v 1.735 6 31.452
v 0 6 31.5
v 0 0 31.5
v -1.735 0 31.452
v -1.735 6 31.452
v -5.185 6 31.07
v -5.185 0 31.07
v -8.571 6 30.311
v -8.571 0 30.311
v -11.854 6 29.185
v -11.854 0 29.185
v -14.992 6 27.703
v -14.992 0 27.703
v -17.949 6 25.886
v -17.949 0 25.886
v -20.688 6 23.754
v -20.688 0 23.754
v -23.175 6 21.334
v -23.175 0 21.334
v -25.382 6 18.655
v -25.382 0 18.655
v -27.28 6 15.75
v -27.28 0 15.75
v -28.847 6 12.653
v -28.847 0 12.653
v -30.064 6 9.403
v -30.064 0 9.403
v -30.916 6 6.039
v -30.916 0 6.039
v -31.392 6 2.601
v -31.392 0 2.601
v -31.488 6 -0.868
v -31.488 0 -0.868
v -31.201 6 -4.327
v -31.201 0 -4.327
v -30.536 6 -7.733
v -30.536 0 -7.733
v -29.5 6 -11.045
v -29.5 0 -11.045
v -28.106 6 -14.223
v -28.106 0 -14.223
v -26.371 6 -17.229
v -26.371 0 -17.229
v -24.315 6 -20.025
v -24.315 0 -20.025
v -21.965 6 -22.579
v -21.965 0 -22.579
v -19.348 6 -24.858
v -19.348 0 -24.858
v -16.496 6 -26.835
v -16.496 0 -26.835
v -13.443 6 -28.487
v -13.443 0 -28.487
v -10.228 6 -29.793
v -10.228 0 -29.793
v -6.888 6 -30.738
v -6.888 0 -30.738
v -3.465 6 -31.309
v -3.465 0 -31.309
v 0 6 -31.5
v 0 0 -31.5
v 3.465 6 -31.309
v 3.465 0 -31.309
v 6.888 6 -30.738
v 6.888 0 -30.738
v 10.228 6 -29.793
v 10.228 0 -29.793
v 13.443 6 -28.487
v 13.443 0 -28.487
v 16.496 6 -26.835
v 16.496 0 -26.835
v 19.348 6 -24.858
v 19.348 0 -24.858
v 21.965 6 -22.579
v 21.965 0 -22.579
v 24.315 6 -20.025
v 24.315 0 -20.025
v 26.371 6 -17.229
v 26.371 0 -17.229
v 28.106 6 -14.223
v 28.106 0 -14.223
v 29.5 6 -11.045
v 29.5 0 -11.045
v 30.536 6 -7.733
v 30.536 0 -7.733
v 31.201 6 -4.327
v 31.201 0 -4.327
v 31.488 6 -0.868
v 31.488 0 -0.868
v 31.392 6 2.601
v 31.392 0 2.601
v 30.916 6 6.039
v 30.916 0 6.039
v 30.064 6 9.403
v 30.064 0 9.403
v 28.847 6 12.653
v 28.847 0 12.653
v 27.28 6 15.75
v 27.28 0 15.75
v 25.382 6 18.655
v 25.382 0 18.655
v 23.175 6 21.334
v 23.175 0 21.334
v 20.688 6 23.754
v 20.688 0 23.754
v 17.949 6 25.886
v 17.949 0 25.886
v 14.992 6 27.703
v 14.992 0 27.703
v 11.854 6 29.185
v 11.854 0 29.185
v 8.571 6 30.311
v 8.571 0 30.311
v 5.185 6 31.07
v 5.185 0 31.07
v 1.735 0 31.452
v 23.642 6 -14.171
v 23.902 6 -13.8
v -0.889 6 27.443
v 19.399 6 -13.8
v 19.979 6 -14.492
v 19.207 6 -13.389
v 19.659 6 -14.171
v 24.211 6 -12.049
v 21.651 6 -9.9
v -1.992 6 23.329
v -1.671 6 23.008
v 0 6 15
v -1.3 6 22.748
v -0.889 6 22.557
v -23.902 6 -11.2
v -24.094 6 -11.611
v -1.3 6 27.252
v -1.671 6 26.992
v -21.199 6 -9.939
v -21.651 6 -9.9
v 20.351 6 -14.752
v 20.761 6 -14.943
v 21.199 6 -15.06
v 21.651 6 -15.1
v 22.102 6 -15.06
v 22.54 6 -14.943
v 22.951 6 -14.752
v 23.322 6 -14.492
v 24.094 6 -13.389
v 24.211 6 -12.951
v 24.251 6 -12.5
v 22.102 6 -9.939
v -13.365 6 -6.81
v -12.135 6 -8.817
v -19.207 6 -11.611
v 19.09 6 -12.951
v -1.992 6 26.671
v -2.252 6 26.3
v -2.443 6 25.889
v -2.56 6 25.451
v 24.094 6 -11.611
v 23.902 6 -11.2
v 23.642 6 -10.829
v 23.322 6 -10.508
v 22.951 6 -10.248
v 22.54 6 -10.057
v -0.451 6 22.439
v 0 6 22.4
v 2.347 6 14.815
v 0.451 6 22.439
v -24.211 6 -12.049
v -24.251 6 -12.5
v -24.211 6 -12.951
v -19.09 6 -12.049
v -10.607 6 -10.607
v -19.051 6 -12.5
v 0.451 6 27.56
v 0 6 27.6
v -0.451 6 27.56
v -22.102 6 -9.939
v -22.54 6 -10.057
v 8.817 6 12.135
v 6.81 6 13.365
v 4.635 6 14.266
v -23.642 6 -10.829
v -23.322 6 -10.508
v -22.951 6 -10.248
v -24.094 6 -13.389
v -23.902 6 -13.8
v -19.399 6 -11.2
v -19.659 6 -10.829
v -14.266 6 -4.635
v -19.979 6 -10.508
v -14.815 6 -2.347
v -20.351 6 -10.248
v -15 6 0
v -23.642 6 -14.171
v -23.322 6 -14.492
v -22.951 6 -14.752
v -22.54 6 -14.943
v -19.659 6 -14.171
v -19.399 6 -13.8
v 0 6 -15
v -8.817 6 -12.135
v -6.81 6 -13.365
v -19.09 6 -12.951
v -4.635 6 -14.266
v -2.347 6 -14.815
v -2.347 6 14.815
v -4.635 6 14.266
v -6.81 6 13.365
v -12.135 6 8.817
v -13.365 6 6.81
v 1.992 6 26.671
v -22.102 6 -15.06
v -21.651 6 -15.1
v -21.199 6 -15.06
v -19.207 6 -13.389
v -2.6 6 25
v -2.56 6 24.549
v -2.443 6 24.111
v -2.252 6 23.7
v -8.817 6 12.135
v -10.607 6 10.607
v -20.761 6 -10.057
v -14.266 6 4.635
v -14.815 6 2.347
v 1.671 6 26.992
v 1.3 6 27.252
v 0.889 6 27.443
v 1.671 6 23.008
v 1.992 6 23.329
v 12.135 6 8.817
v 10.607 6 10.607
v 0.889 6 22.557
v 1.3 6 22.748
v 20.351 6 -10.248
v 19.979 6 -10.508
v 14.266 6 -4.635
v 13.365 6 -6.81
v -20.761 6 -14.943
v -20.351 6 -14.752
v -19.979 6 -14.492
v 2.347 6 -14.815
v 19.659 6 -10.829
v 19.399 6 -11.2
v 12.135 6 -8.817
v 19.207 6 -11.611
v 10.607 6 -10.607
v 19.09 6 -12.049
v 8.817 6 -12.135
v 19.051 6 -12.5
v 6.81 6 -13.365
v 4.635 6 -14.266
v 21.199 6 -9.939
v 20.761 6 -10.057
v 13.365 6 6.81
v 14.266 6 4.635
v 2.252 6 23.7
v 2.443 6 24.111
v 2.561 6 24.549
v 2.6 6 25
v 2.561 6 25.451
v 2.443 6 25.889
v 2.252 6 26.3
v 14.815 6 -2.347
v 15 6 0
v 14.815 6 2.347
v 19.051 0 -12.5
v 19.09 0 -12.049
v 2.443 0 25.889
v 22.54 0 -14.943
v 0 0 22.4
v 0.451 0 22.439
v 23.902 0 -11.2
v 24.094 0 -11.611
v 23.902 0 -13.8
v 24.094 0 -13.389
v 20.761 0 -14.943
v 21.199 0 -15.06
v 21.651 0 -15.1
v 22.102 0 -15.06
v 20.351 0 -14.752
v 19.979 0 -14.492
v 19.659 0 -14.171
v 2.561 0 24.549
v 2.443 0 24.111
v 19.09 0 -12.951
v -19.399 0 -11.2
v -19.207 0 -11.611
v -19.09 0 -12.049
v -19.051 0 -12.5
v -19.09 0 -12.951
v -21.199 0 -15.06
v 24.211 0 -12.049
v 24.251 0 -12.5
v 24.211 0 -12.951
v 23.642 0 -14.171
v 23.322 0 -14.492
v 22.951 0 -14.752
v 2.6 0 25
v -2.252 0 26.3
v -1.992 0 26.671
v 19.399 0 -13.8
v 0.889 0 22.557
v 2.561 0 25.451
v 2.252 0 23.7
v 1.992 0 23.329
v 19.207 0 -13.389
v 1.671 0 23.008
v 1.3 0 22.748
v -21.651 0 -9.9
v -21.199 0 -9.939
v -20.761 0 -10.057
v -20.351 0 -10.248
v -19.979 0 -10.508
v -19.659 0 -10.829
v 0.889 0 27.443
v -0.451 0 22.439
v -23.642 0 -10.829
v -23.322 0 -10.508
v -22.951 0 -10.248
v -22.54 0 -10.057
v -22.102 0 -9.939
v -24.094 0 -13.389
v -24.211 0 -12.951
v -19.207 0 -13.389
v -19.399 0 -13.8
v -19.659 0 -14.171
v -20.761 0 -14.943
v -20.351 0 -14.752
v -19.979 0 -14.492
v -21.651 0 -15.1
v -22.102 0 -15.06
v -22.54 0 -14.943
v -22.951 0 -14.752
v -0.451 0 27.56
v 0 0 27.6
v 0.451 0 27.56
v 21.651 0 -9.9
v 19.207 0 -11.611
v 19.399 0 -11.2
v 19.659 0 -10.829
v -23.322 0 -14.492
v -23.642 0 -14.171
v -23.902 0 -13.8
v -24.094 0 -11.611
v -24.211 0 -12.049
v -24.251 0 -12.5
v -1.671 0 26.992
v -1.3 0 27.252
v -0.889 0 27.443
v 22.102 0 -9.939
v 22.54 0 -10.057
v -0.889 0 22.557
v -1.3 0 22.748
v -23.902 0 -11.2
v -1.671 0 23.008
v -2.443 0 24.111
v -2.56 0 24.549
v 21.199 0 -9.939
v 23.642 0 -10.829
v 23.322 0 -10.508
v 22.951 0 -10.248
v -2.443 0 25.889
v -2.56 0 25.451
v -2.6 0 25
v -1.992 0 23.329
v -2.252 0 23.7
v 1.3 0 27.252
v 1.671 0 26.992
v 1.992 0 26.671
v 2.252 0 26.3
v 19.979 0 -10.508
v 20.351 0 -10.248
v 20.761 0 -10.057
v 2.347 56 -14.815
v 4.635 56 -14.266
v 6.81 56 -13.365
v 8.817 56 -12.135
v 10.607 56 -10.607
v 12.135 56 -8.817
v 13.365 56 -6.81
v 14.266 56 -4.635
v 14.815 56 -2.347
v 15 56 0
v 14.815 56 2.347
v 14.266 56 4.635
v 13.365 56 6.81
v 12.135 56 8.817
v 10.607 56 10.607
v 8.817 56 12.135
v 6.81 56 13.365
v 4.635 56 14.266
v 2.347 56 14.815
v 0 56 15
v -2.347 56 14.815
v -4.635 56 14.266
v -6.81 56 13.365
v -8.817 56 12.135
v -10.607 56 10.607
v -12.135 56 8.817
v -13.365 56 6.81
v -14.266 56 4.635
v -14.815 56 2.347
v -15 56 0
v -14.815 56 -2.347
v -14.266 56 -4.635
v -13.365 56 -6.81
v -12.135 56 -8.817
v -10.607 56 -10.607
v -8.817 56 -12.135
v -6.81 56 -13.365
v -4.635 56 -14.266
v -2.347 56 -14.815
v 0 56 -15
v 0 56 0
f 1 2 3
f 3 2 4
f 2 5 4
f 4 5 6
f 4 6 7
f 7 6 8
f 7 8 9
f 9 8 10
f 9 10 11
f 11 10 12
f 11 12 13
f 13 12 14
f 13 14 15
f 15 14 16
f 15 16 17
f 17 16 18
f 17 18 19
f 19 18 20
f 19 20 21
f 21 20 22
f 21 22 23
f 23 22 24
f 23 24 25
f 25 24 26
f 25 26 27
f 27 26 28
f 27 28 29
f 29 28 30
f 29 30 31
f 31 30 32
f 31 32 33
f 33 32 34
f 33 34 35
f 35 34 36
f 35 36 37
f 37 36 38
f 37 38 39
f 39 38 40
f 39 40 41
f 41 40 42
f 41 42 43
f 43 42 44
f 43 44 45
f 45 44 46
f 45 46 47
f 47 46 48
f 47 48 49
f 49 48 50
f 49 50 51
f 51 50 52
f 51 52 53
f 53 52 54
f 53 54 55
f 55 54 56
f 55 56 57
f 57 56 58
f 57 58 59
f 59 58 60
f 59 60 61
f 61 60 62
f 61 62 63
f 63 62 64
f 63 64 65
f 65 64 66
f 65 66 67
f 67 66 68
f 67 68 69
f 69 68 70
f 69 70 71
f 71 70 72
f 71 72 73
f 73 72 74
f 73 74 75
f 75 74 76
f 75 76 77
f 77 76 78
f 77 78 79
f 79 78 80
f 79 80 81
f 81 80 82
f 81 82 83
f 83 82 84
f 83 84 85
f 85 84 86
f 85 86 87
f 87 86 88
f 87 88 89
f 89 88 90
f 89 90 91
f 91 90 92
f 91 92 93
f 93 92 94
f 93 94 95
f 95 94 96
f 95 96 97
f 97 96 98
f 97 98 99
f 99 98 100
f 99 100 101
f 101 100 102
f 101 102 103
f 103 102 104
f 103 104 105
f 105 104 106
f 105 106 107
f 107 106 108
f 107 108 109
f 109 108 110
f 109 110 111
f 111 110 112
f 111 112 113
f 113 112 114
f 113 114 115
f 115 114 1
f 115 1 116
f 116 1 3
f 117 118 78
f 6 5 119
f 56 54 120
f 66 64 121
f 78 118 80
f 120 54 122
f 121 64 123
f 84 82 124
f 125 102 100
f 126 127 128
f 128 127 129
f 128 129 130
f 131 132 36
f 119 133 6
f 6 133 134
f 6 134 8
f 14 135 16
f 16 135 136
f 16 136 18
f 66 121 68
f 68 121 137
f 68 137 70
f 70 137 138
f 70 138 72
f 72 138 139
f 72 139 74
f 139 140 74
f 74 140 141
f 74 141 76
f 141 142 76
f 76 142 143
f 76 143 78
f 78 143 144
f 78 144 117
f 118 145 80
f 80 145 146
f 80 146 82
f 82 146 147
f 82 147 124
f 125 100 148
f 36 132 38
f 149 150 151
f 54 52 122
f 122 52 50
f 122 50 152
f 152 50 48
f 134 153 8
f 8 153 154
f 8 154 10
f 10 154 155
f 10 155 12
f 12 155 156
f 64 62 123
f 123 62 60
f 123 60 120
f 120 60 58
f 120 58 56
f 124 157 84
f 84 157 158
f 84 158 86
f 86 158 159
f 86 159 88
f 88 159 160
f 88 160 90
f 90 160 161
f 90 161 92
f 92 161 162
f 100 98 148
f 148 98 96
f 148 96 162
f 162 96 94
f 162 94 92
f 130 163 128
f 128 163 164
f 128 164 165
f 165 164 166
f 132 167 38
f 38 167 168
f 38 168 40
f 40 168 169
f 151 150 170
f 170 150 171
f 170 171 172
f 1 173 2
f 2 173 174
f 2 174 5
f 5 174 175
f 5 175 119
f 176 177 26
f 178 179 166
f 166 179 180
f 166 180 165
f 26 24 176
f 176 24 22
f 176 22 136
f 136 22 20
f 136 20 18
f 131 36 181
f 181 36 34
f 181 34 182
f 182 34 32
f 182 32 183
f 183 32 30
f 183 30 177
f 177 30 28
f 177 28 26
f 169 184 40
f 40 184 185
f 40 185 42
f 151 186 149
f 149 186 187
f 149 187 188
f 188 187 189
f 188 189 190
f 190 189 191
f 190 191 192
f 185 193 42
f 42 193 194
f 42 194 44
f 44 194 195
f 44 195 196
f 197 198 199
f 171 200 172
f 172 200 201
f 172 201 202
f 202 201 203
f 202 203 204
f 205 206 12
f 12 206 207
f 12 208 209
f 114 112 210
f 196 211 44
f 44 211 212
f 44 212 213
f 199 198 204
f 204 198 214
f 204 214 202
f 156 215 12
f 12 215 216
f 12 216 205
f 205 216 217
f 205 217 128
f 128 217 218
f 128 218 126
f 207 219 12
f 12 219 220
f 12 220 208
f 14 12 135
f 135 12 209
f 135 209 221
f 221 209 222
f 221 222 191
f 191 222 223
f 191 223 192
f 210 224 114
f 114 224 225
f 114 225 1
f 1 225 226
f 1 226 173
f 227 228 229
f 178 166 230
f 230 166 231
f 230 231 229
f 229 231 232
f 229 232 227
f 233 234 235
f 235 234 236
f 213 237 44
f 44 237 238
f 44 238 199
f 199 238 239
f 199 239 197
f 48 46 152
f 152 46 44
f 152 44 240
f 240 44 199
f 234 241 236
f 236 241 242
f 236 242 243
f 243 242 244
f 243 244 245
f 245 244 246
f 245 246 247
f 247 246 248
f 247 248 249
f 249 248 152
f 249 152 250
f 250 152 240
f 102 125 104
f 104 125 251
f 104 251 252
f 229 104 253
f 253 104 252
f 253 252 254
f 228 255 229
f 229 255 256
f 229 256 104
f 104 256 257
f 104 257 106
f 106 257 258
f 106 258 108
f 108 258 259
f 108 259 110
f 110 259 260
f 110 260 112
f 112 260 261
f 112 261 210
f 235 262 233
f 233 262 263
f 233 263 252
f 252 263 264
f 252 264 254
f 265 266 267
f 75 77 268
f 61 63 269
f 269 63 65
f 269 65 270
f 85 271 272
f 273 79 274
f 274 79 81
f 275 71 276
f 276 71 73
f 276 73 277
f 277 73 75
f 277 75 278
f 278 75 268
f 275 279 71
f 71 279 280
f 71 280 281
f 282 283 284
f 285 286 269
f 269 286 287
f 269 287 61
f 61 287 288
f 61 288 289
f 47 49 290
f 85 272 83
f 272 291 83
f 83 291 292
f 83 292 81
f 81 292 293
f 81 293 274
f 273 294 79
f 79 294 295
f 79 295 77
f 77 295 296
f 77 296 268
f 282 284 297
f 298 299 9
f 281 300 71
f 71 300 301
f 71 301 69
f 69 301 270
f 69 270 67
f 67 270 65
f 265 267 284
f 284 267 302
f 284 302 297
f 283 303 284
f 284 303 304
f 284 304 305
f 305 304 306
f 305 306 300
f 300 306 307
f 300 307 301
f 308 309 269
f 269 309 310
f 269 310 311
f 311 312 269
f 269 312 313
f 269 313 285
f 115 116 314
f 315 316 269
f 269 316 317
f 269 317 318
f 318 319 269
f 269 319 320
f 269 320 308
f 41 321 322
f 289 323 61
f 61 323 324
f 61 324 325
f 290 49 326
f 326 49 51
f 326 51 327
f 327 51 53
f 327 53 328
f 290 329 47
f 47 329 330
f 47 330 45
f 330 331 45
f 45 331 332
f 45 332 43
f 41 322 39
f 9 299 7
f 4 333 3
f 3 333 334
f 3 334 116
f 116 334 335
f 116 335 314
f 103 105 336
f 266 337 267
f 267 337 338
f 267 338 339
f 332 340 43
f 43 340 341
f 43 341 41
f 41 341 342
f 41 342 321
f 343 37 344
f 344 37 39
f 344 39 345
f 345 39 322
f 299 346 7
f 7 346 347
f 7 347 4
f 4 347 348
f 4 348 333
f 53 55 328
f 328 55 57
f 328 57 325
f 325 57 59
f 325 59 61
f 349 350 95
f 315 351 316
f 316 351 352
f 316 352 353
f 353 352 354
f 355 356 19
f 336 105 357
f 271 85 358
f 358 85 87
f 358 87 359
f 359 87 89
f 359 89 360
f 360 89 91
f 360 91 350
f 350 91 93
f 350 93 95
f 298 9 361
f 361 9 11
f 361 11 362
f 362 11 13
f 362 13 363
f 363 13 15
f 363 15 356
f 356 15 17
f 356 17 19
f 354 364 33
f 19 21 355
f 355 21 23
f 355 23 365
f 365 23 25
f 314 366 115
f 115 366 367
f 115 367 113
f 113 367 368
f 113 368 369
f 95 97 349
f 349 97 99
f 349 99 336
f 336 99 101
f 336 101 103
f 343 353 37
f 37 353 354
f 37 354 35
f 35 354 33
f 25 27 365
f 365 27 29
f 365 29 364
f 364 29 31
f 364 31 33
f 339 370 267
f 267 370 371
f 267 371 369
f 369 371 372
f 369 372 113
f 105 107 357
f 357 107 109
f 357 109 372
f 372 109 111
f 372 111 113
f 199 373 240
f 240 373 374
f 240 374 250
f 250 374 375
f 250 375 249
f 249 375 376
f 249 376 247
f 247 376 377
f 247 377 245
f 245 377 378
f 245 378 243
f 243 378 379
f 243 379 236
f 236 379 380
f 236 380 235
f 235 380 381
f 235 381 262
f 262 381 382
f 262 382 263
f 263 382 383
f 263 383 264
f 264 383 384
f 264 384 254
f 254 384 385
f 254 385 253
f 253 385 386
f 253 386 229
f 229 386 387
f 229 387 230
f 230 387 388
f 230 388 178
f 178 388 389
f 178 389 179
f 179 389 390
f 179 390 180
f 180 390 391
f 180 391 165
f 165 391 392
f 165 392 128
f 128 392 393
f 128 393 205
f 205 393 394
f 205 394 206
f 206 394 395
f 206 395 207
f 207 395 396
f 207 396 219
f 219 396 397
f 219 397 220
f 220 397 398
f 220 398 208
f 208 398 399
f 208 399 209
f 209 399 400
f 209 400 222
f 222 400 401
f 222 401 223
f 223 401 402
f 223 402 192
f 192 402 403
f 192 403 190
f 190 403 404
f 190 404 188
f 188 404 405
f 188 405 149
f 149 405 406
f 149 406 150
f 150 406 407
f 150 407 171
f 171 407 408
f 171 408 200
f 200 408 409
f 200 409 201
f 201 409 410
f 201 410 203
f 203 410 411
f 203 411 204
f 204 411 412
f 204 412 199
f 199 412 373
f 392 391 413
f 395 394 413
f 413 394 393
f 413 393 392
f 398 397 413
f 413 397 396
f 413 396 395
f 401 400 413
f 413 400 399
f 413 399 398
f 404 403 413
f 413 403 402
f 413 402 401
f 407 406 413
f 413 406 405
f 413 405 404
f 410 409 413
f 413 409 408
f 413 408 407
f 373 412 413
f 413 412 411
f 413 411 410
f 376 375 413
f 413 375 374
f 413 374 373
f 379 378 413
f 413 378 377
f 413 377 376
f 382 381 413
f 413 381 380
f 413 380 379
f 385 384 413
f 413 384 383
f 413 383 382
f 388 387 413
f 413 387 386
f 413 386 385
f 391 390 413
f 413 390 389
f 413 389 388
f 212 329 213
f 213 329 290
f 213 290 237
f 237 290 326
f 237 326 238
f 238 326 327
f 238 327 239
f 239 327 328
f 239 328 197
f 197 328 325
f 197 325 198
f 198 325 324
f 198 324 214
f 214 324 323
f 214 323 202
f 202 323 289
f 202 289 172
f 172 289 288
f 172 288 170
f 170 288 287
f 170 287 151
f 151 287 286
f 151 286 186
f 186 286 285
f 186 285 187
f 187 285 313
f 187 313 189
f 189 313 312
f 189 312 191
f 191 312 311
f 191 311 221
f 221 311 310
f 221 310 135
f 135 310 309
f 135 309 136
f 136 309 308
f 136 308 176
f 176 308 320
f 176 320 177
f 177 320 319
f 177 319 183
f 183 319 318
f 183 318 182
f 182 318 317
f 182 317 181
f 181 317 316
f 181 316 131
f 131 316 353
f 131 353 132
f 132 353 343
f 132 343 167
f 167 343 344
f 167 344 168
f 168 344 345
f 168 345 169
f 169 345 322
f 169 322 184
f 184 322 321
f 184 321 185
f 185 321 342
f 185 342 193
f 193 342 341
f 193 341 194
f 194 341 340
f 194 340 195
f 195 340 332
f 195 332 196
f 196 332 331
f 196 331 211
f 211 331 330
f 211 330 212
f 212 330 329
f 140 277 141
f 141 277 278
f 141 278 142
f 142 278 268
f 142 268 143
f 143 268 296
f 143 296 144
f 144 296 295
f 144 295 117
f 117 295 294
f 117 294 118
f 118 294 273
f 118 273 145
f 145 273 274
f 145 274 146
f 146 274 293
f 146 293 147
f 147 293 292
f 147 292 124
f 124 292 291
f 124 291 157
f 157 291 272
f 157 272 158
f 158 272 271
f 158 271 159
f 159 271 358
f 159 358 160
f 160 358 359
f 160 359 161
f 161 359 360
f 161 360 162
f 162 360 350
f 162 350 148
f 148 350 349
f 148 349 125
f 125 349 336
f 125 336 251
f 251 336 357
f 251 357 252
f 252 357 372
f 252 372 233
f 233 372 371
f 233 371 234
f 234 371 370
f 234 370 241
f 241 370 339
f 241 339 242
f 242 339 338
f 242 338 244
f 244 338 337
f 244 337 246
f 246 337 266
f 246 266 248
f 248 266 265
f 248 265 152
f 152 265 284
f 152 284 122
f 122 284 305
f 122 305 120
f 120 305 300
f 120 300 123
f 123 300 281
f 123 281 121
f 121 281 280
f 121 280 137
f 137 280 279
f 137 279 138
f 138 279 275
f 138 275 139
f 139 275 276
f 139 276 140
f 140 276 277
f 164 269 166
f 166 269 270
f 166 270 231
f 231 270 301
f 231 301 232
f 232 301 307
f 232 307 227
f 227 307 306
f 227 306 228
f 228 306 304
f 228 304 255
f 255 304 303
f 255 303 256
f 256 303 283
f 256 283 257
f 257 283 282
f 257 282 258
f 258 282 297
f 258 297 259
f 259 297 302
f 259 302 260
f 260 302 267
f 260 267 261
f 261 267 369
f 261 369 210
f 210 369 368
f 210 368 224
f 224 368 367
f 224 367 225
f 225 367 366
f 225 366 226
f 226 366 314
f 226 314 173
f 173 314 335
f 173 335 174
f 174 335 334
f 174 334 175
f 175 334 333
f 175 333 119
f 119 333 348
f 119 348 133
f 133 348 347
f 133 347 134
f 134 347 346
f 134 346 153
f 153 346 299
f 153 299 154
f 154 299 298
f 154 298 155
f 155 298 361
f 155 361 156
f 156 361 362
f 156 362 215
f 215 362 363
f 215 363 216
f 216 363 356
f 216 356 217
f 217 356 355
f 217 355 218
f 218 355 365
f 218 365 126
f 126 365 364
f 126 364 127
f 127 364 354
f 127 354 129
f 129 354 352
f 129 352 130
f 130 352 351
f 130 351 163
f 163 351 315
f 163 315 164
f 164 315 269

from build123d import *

# Parameters (mm, degrees)
SKETCH_1_R          = 31.5
EXTRUDE_1_DEPTH     = 6
SKETCH_2_R          = 15
EXTRUDE_2_DEPTH     = 50
SKETCH_3_R          = 2.6
CUT_EXTRUDE_1_DEPTH = 72.557669051


with BuildPart() as part:
    # 草图1 → 凸台-拉伸1 (new body)
    with BuildSketch(Plane(origin=(0, 0, 0), x_dir=(1, 0, 0), z_dir=(0, 1, 0))):
        with Locations(Location((0, 0, 0), (0, 0, 270))):
            Circle(SKETCH_1_R)
    extrude(amount=EXTRUDE_1_DEPTH)

    # 草图2 → 凸台-拉伸2 (add)
    with BuildSketch(Plane(origin=(0, 6, 0), x_dir=(1, 0, 0), z_dir=(0, 1, 0))):
        with Locations(Location((0, 0, 0), (0, 0, 270))):
            Circle(SKETCH_2_R)
    extrude(amount=EXTRUDE_2_DEPTH)

    # 草图3 → 切除-拉伸1 (cut, through all)
    with BuildSketch(Plane.XZ):
        with Locations(Location((-21.650635095, -12.5, 0), (0, 0, 270))):
            Circle(SKETCH_3_R)
        with Locations(Location((0, 25, 0), (0, 0, 270))):
            Circle(SKETCH_3_R)
        with Locations(Location((21.650635095, -12.5, 0), (0, 0, 270))):
            Circle(SKETCH_3_R)
    extrude(amount=-CUT_EXTRUDE_1_DEPTH, mode=Mode.SUBTRACT)


solid = part.part
